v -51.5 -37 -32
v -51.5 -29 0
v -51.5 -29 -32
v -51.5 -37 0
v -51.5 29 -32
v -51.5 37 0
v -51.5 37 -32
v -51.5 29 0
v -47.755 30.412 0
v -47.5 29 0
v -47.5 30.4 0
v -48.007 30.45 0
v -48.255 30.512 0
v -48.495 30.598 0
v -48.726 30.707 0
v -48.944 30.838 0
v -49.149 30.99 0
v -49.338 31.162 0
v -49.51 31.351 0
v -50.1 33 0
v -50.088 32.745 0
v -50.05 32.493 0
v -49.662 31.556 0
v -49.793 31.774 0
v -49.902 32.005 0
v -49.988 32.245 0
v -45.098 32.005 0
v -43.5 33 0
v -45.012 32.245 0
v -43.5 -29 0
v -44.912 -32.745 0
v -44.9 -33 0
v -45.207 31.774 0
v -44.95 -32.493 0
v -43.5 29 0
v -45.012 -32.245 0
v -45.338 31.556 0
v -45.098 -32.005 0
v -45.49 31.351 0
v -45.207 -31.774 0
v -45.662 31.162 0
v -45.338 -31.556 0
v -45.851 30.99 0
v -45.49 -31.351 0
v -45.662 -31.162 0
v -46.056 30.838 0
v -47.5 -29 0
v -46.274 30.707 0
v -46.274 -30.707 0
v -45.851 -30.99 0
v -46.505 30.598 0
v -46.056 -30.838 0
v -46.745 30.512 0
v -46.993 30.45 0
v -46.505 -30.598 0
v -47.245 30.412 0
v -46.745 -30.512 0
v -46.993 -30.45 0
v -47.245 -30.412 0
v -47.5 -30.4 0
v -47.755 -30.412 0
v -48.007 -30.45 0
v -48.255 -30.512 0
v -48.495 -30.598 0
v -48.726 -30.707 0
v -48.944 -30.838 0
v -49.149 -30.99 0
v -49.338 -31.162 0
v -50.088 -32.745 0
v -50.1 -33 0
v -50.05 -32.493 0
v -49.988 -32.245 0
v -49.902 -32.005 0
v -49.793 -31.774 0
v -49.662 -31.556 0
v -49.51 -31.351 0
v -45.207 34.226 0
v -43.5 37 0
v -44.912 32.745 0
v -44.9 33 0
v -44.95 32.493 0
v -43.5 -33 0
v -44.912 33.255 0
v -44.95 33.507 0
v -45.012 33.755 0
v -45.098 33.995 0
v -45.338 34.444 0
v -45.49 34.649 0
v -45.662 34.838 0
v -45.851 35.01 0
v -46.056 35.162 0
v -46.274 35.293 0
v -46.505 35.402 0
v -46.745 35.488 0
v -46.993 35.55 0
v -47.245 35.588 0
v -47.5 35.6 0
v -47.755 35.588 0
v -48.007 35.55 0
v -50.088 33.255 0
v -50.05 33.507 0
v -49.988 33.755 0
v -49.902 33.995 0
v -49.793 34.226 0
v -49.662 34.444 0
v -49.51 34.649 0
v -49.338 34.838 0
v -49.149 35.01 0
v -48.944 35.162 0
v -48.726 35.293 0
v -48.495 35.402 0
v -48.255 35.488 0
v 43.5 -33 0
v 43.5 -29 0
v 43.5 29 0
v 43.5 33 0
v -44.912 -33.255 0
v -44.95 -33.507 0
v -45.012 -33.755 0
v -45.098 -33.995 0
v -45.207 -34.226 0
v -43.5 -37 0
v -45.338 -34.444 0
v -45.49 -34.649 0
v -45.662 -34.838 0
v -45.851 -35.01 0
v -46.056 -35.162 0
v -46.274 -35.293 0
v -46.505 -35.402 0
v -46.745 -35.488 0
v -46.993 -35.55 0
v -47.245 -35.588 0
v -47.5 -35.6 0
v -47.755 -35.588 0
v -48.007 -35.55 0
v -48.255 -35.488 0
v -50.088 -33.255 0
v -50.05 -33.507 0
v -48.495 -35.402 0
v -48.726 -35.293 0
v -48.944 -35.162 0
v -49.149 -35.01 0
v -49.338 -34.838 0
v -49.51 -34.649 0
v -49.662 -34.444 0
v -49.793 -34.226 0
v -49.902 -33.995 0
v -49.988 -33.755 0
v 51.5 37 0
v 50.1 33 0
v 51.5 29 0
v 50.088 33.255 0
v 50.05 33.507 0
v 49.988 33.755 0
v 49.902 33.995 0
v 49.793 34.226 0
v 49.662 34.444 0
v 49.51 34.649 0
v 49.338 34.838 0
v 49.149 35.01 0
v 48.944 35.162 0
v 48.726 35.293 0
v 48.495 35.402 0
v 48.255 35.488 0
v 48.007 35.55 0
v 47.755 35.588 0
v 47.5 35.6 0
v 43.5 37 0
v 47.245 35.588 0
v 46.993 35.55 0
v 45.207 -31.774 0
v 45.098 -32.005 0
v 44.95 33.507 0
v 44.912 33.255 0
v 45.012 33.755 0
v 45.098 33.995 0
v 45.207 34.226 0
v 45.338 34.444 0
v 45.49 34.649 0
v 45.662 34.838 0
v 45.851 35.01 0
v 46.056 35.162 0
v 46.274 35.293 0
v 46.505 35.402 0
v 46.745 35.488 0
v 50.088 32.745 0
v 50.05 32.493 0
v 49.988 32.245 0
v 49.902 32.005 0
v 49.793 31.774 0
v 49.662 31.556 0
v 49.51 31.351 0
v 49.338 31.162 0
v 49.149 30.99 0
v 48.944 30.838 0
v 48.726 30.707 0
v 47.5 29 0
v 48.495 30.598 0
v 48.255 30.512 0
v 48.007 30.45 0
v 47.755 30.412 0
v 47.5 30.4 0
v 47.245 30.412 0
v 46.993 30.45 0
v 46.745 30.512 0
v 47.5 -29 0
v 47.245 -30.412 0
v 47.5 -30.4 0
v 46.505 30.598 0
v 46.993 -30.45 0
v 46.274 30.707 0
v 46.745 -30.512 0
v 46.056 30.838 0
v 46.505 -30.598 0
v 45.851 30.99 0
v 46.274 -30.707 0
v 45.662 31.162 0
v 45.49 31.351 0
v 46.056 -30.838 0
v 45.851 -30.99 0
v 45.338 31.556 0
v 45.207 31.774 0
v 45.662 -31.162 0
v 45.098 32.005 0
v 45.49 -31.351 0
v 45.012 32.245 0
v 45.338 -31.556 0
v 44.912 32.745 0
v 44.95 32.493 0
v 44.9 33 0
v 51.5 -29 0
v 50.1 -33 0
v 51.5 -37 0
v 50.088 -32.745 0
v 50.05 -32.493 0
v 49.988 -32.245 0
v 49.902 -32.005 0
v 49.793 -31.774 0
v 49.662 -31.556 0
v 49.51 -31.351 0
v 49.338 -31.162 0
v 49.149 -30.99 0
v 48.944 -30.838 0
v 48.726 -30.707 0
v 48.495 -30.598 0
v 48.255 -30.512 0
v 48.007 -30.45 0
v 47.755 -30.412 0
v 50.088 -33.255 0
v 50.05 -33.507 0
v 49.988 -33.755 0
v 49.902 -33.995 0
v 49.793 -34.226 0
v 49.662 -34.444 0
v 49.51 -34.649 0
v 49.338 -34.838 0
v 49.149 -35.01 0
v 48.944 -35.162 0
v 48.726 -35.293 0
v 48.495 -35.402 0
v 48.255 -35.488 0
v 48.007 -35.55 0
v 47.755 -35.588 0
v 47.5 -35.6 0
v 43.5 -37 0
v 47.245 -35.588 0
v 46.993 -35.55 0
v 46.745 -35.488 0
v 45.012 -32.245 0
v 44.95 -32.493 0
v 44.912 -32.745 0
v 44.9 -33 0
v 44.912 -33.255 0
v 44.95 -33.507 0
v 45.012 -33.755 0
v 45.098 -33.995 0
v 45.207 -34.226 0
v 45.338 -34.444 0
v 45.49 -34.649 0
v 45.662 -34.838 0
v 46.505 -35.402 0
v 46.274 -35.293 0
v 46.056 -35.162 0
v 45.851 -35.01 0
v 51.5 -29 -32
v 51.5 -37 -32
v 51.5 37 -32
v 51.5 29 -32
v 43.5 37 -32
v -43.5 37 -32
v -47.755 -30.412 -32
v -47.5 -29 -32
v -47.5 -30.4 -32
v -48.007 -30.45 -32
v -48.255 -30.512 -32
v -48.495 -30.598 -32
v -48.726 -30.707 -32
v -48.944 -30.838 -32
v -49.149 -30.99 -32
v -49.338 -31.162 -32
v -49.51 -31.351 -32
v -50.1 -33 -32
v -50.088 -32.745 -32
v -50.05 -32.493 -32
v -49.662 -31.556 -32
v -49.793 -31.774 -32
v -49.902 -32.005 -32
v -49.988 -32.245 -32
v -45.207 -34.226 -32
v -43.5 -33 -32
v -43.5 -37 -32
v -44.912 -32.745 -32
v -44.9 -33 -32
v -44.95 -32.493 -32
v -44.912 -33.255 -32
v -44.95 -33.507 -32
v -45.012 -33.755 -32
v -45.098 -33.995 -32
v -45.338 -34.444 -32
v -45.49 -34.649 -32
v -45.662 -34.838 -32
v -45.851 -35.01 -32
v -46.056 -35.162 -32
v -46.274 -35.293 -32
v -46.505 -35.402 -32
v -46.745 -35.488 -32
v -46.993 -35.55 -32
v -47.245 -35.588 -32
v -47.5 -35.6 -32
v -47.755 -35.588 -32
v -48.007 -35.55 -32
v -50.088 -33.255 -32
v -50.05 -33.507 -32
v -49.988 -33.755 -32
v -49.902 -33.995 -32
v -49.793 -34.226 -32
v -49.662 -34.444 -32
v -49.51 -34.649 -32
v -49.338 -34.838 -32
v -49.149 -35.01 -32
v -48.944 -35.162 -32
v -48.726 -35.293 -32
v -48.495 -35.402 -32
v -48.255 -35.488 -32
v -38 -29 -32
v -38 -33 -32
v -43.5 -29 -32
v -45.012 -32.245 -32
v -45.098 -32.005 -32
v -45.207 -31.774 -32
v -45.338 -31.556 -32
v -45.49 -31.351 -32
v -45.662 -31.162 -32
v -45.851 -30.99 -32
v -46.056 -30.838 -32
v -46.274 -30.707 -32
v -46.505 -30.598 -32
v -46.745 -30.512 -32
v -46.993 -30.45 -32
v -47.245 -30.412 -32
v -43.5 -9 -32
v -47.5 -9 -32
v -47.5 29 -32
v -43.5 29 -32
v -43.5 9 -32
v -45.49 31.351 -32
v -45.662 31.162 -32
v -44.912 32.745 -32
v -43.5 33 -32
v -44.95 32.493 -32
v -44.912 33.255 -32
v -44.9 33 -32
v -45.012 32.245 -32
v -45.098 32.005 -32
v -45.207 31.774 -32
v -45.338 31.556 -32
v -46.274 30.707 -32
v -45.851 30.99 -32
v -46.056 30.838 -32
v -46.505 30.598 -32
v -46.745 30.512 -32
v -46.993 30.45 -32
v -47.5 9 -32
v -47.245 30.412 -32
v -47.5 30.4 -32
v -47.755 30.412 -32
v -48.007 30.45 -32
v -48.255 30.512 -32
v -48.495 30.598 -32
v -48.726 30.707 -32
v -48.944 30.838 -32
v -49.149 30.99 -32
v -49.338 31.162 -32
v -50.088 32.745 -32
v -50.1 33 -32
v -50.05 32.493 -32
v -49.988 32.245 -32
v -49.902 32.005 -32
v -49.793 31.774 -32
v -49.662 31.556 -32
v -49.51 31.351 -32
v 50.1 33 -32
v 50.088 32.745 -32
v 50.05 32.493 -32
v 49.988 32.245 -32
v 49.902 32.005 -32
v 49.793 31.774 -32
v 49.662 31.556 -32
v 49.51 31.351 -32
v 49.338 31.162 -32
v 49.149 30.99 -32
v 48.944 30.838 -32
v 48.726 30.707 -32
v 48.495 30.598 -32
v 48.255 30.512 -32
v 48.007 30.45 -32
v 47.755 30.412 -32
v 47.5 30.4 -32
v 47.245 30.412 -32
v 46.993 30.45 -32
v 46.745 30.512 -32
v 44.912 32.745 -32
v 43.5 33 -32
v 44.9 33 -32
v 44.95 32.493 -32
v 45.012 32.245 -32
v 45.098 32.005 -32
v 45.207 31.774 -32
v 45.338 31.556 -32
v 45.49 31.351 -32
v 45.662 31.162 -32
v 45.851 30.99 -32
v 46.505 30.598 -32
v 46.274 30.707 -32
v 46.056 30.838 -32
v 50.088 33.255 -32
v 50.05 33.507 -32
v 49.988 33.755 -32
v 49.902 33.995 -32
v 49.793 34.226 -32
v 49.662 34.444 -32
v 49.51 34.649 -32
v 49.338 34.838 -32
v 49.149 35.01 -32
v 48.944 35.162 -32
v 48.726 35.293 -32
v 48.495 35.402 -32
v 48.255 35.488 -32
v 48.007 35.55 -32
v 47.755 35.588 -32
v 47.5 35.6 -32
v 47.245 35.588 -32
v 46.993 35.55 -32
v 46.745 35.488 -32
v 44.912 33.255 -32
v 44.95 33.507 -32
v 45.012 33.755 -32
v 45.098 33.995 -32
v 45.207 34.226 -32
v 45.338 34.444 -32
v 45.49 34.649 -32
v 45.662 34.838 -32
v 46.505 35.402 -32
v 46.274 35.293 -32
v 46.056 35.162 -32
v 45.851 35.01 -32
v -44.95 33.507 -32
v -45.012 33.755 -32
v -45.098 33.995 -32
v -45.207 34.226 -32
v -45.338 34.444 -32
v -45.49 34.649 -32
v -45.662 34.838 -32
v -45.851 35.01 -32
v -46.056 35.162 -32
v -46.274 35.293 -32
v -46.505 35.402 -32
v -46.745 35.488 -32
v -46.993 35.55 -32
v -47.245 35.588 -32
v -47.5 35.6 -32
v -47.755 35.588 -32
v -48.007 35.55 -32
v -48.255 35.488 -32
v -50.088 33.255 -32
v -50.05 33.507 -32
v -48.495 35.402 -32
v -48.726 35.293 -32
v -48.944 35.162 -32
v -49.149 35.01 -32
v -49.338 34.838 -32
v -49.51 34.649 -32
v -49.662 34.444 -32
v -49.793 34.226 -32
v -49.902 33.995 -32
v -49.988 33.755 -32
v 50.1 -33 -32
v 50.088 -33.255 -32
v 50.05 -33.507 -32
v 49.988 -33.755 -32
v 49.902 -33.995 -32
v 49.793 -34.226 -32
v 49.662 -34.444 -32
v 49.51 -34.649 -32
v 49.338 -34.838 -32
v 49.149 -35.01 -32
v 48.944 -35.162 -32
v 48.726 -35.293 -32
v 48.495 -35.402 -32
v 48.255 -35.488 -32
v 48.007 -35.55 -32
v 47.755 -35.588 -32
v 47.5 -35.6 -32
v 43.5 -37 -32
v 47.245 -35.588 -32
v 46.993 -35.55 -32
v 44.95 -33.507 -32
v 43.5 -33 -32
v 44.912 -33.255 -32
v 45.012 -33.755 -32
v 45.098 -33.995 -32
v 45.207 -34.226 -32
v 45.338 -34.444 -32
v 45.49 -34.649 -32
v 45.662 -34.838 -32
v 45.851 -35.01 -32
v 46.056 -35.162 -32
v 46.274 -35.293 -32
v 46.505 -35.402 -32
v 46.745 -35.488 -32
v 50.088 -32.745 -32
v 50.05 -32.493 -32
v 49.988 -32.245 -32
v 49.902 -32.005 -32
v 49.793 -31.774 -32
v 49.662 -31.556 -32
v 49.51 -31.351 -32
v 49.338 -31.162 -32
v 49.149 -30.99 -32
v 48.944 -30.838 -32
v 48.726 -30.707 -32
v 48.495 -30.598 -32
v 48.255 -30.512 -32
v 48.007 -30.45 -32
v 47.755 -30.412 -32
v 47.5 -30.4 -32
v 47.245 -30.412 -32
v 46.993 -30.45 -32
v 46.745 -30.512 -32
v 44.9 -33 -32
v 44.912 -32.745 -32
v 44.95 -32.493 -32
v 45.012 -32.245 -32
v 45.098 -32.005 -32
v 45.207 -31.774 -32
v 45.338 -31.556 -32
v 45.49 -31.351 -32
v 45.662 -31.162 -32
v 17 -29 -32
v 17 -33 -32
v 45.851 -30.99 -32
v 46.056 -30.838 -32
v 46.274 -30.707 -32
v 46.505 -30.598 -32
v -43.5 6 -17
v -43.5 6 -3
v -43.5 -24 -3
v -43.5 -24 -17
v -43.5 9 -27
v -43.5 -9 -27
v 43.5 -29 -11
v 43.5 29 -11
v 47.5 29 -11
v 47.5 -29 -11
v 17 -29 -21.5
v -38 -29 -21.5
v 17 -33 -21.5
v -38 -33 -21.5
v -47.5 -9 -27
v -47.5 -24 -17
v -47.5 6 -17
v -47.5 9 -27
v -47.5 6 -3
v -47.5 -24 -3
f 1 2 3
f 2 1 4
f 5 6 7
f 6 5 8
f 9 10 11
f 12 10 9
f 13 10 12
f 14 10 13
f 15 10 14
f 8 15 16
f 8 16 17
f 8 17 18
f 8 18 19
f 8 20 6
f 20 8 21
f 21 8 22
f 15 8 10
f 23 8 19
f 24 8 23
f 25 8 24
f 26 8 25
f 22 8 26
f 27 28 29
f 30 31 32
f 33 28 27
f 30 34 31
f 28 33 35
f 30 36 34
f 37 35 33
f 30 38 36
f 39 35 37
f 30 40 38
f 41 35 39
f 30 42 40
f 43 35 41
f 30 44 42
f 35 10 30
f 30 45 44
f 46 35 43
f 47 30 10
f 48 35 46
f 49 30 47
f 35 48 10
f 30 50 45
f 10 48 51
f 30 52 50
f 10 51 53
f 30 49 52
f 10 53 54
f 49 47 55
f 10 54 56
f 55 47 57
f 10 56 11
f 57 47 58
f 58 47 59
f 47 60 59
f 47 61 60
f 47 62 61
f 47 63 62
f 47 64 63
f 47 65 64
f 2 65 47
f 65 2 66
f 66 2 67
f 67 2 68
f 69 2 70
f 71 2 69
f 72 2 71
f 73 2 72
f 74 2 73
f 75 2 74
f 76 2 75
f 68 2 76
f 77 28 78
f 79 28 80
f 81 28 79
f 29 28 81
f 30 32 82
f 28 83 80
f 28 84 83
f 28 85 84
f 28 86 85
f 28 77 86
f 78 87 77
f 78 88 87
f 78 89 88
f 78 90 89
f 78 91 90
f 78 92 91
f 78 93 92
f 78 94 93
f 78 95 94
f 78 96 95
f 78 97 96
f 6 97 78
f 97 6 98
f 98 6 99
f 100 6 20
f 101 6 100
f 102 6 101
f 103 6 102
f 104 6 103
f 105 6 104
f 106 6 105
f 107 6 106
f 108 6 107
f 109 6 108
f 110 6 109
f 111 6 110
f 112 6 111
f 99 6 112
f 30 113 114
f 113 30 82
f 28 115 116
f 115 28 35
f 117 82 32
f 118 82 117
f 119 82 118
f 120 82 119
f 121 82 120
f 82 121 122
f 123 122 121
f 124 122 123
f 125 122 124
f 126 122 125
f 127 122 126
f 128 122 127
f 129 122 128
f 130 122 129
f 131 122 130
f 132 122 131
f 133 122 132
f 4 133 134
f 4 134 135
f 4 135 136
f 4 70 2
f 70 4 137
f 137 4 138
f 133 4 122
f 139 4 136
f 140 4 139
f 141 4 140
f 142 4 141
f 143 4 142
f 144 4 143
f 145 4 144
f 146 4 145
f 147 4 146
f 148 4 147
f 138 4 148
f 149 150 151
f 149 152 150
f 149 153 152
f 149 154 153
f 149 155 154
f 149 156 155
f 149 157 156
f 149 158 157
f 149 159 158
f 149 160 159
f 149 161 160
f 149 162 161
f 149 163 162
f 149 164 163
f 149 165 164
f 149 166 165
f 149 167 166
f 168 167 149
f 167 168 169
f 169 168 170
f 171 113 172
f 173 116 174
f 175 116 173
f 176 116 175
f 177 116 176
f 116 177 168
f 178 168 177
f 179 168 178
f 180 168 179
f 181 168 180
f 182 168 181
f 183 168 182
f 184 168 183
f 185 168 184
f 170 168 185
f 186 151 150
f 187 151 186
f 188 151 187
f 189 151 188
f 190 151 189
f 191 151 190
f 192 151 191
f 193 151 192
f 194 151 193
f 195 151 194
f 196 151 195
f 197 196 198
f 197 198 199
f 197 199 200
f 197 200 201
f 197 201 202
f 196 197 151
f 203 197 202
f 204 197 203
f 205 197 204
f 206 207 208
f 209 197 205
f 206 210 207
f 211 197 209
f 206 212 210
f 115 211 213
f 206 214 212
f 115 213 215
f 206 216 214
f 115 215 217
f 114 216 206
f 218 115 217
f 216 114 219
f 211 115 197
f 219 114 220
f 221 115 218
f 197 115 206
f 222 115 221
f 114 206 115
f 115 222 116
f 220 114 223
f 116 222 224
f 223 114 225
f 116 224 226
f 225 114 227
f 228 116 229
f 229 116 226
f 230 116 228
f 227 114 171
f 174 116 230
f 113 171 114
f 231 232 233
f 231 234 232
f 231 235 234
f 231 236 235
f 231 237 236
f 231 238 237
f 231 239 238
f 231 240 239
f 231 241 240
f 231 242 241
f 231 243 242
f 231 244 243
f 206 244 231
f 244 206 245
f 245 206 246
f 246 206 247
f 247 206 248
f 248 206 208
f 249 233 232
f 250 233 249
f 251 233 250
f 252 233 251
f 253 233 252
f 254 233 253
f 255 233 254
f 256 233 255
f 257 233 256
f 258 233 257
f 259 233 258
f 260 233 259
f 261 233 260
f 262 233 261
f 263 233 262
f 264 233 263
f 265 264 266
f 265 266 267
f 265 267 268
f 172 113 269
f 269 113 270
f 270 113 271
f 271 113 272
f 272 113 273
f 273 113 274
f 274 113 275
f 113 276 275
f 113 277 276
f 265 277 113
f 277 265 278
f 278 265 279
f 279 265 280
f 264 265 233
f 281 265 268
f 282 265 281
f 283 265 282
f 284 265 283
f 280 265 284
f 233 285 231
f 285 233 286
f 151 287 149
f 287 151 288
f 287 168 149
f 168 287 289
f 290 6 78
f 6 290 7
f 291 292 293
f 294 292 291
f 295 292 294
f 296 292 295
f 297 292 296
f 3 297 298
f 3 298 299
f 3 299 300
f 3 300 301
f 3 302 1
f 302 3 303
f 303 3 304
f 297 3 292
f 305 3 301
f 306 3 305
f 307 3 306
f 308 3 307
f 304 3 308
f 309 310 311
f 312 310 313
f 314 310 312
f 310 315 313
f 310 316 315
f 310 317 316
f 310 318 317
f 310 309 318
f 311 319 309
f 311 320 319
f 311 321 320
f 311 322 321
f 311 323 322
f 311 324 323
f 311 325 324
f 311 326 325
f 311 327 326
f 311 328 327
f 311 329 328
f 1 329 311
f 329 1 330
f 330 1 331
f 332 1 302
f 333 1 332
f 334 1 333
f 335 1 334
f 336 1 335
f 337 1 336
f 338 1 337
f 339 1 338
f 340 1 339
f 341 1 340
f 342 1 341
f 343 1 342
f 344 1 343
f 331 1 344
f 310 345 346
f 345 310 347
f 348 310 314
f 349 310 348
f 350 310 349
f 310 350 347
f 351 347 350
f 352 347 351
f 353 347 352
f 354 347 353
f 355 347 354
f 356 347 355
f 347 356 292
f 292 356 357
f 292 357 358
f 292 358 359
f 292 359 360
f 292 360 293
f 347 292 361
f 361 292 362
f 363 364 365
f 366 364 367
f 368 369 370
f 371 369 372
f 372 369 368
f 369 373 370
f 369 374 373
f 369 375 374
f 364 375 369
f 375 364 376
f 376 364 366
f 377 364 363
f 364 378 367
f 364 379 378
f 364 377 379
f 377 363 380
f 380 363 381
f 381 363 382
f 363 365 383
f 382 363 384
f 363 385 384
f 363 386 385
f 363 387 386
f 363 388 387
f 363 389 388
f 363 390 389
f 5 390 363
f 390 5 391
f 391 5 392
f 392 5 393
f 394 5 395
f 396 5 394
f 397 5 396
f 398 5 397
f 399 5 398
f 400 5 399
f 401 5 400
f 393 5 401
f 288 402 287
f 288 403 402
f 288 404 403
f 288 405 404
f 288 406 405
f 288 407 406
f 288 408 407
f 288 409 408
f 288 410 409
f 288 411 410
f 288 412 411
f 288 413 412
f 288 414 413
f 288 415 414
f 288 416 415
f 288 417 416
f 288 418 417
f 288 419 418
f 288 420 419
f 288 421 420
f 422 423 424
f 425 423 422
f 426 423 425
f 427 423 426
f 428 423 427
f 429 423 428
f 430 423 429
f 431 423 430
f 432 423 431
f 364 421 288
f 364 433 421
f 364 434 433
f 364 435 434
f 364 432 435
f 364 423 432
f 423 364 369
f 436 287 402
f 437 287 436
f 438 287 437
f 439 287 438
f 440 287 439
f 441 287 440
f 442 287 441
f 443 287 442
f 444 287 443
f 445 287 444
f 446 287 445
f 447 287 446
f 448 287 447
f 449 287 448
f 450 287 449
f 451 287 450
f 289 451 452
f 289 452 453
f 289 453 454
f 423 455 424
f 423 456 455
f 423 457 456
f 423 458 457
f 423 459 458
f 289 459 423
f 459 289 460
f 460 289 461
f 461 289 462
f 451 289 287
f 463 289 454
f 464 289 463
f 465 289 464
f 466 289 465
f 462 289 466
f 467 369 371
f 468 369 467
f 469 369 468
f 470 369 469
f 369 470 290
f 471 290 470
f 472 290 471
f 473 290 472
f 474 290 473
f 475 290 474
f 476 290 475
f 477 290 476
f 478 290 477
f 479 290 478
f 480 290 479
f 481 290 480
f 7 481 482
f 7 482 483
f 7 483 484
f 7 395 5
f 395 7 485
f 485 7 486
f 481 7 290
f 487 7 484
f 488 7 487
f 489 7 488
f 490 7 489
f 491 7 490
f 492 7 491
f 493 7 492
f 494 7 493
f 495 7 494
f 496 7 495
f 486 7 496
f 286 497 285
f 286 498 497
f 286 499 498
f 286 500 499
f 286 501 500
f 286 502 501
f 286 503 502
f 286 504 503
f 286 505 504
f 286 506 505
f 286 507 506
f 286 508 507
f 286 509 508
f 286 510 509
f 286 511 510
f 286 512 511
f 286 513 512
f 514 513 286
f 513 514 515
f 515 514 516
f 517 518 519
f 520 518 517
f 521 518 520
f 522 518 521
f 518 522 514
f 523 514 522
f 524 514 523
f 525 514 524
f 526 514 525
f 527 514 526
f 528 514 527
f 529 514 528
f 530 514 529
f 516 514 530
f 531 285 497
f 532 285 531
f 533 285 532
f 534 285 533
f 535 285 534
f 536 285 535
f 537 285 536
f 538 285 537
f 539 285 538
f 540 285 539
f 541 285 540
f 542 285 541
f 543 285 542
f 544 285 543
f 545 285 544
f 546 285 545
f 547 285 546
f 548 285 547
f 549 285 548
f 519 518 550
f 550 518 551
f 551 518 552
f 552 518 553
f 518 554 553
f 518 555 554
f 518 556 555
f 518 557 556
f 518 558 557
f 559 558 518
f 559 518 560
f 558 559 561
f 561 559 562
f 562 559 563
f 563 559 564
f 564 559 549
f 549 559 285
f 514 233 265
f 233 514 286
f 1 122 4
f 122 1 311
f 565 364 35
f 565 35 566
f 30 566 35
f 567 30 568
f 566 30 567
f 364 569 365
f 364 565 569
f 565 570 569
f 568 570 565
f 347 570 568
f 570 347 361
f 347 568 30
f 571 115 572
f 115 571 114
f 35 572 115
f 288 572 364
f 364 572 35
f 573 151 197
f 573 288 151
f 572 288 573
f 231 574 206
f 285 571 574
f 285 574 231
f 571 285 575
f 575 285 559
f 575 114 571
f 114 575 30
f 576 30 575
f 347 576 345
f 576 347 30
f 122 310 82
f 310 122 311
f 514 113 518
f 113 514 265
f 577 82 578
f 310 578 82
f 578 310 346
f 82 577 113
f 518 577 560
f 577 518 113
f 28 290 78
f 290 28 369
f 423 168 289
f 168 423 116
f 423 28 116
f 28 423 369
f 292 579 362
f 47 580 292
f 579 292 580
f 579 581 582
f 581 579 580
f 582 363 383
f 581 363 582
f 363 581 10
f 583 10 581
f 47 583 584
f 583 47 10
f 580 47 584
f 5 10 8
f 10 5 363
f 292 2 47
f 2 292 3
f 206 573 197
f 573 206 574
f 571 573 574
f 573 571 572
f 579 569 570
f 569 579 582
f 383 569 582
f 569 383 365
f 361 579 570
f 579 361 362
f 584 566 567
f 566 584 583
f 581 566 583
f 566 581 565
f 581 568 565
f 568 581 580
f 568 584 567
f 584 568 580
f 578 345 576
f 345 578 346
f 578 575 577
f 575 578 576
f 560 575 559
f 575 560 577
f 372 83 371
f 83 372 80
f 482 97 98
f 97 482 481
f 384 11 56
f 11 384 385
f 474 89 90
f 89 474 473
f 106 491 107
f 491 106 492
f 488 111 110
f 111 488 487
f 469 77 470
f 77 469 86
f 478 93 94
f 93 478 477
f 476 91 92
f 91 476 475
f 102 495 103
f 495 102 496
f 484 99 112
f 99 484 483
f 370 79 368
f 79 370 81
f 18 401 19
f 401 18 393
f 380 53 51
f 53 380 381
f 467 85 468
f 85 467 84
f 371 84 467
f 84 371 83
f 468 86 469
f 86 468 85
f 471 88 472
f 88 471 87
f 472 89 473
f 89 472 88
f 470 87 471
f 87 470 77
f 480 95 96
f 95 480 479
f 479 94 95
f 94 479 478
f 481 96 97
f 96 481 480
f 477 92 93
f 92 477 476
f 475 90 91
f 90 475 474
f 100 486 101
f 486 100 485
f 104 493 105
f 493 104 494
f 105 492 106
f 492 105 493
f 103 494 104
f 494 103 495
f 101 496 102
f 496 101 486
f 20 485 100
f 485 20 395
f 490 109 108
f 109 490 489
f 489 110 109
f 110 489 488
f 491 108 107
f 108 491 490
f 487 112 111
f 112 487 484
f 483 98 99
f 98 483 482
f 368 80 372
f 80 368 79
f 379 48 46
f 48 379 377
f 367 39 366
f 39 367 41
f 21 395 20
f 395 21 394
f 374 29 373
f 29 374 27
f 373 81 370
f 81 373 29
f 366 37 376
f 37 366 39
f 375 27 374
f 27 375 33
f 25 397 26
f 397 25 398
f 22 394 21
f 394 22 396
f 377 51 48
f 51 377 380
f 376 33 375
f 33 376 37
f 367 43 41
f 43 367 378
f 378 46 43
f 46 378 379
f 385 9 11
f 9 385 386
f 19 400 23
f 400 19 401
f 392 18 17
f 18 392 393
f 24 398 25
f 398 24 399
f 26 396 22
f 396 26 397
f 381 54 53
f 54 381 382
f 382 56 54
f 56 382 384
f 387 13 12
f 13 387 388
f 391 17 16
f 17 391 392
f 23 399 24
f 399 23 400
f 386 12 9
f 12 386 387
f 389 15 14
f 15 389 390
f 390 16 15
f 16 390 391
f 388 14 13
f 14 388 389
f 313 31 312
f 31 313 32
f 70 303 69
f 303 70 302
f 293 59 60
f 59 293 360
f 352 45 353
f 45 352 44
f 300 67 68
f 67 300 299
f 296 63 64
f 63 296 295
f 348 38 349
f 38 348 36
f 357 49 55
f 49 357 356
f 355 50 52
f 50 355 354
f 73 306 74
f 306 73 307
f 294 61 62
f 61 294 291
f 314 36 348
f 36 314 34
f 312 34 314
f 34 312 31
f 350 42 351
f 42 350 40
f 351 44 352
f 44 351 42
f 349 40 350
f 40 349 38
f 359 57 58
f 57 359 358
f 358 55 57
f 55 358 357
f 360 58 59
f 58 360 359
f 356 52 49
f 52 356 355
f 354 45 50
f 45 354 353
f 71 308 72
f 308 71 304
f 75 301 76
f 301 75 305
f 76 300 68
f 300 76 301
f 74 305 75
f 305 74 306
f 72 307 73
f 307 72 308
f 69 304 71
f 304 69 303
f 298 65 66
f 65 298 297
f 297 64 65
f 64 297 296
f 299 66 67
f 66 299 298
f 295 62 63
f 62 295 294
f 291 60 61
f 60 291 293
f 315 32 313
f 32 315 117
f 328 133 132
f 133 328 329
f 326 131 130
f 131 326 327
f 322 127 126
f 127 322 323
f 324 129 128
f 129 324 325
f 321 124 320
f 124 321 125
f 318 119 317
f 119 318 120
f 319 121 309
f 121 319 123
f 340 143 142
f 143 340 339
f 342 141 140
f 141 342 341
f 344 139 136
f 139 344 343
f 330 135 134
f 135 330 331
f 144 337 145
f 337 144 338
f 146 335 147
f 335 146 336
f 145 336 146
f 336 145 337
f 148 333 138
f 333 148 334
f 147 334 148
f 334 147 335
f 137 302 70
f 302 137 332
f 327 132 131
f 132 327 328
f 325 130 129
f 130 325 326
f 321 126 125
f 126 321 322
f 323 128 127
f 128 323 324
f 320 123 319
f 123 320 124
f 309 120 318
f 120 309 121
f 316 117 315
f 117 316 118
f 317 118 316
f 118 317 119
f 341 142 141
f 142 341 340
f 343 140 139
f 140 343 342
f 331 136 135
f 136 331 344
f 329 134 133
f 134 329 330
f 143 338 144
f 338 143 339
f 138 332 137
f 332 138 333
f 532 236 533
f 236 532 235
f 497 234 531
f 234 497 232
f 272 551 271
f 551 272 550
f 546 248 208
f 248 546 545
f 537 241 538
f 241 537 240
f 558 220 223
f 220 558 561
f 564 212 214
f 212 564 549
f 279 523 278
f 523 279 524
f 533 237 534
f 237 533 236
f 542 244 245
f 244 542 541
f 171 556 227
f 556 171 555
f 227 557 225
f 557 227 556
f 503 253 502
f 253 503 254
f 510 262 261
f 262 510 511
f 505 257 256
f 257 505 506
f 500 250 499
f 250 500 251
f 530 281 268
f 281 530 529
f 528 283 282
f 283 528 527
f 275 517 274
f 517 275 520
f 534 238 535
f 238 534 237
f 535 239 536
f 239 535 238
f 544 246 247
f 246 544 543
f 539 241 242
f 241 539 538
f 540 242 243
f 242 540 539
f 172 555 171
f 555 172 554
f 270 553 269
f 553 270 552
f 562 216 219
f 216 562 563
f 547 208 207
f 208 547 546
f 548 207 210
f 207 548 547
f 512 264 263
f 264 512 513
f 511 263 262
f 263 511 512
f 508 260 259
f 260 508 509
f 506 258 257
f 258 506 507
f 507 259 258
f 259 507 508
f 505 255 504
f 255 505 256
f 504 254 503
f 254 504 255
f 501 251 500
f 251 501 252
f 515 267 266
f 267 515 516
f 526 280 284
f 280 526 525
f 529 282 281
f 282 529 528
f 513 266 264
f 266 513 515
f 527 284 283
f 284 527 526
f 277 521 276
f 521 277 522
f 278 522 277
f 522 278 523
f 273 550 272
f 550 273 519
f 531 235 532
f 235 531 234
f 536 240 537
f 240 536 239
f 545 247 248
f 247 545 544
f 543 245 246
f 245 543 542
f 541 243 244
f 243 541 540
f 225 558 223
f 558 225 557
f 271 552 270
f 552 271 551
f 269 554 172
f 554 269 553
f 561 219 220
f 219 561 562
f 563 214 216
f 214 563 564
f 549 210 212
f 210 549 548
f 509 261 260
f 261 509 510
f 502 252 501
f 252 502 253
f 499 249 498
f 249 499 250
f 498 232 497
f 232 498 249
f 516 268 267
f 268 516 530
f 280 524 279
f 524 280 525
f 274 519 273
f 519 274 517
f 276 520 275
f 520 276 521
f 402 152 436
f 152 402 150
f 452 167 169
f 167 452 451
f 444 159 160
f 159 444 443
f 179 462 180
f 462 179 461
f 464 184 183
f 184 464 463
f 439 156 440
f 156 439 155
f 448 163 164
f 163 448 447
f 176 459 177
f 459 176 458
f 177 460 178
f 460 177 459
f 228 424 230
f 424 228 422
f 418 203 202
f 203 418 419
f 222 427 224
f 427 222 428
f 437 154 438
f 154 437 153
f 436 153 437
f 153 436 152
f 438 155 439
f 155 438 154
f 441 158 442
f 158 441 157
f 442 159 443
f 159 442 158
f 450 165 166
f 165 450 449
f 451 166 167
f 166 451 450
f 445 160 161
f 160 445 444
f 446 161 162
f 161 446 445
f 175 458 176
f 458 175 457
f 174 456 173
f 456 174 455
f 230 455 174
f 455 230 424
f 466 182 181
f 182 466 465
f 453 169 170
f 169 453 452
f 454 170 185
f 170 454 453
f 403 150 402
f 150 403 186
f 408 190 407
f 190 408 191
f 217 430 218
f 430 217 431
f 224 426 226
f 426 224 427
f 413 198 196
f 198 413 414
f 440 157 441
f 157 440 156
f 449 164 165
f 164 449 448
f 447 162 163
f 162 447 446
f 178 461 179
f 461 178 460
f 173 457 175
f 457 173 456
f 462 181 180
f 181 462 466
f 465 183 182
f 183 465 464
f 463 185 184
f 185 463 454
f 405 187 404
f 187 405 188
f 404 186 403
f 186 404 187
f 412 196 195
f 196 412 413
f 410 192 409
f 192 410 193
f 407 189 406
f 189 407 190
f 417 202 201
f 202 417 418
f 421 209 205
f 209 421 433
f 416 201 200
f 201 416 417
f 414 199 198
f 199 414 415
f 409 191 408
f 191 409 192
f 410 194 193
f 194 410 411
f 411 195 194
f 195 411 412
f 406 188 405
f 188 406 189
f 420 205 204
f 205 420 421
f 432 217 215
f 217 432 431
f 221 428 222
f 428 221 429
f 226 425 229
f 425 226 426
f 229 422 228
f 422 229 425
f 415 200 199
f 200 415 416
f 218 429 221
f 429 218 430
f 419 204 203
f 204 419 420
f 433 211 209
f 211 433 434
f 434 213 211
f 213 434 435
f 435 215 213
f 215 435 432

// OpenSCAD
$fn=64;
difference(){
    //main cube
    {
        xdim2 = 103;
        ydim2 = 74;
        zdim2 = 32;
        translate([-xdim2/2, -ydim2/2, -zdim2])
        {
            cube([xdim2,ydim2,zdim2]);
        }
    }
    
    xdim1 = 87;
    ydim1 = 58;
    zdim1 = 32;
    //center cut out
    translate([-xdim1/2, -ydim1/2, -zdim1])
    {
        cube([xdim1,ydim1,zdim1]);
    }
    //long side 1 indent
    translate([-xdim1/2, -37, -zdim1])
    {
        cube([xdim1,4,zdim1]);
    }
    //long side 2 indent
    translate([-xdim1/2, 33, -zdim1])
    {
        cube([xdim1,4,zdim1]);
    }
    //short side 1 indent
    translate([-51.5, -ydim1/2, -zdim1])
    {
        cube([4,ydim1,zdim1]);
    }
    //short side 2 indent
    translate([47.5, -ydim1/2, -zdim1])
    {
        cube([4,ydim1,zdim1]);
    }
    //cutout for usb and eth
    translate([43.5, -ydim1/2, -zdim1])
    {
        cube([4,ydim1,21]);
    }
    //cutout for sd card
    translate([-47.5, -9, -zdim1])
    {
        cube([4,18,5]);
    }
    //cutout for switch
    translate([-47.5, -24, -17])
    {
        cube([4,30,14]);
    }
    //cutout for video/audio
    translate([-38, -33, -zdim1])
    {
        cube([55,4,10.5]);
    }
    
    radius = 2.6;
    //hole in Q4
    translate([-47.5,33,-zdim1])
    {
        cylinder (zdim1,radius,radius);
    }
    //hole in Q3
    translate([-47.5,-33,-zdim1])
    {
        cylinder (zdim1,radius,radius);
    }
    //hole in Q2
    translate([47.5,-33,-zdim1])
    {
        cylinder (zdim1,radius,radius);
    }
    //hole in Q1
    translate([47.5,33,-zdim1])
    {
        cylinder (zdim1,radius,radius);
    }
    
}
